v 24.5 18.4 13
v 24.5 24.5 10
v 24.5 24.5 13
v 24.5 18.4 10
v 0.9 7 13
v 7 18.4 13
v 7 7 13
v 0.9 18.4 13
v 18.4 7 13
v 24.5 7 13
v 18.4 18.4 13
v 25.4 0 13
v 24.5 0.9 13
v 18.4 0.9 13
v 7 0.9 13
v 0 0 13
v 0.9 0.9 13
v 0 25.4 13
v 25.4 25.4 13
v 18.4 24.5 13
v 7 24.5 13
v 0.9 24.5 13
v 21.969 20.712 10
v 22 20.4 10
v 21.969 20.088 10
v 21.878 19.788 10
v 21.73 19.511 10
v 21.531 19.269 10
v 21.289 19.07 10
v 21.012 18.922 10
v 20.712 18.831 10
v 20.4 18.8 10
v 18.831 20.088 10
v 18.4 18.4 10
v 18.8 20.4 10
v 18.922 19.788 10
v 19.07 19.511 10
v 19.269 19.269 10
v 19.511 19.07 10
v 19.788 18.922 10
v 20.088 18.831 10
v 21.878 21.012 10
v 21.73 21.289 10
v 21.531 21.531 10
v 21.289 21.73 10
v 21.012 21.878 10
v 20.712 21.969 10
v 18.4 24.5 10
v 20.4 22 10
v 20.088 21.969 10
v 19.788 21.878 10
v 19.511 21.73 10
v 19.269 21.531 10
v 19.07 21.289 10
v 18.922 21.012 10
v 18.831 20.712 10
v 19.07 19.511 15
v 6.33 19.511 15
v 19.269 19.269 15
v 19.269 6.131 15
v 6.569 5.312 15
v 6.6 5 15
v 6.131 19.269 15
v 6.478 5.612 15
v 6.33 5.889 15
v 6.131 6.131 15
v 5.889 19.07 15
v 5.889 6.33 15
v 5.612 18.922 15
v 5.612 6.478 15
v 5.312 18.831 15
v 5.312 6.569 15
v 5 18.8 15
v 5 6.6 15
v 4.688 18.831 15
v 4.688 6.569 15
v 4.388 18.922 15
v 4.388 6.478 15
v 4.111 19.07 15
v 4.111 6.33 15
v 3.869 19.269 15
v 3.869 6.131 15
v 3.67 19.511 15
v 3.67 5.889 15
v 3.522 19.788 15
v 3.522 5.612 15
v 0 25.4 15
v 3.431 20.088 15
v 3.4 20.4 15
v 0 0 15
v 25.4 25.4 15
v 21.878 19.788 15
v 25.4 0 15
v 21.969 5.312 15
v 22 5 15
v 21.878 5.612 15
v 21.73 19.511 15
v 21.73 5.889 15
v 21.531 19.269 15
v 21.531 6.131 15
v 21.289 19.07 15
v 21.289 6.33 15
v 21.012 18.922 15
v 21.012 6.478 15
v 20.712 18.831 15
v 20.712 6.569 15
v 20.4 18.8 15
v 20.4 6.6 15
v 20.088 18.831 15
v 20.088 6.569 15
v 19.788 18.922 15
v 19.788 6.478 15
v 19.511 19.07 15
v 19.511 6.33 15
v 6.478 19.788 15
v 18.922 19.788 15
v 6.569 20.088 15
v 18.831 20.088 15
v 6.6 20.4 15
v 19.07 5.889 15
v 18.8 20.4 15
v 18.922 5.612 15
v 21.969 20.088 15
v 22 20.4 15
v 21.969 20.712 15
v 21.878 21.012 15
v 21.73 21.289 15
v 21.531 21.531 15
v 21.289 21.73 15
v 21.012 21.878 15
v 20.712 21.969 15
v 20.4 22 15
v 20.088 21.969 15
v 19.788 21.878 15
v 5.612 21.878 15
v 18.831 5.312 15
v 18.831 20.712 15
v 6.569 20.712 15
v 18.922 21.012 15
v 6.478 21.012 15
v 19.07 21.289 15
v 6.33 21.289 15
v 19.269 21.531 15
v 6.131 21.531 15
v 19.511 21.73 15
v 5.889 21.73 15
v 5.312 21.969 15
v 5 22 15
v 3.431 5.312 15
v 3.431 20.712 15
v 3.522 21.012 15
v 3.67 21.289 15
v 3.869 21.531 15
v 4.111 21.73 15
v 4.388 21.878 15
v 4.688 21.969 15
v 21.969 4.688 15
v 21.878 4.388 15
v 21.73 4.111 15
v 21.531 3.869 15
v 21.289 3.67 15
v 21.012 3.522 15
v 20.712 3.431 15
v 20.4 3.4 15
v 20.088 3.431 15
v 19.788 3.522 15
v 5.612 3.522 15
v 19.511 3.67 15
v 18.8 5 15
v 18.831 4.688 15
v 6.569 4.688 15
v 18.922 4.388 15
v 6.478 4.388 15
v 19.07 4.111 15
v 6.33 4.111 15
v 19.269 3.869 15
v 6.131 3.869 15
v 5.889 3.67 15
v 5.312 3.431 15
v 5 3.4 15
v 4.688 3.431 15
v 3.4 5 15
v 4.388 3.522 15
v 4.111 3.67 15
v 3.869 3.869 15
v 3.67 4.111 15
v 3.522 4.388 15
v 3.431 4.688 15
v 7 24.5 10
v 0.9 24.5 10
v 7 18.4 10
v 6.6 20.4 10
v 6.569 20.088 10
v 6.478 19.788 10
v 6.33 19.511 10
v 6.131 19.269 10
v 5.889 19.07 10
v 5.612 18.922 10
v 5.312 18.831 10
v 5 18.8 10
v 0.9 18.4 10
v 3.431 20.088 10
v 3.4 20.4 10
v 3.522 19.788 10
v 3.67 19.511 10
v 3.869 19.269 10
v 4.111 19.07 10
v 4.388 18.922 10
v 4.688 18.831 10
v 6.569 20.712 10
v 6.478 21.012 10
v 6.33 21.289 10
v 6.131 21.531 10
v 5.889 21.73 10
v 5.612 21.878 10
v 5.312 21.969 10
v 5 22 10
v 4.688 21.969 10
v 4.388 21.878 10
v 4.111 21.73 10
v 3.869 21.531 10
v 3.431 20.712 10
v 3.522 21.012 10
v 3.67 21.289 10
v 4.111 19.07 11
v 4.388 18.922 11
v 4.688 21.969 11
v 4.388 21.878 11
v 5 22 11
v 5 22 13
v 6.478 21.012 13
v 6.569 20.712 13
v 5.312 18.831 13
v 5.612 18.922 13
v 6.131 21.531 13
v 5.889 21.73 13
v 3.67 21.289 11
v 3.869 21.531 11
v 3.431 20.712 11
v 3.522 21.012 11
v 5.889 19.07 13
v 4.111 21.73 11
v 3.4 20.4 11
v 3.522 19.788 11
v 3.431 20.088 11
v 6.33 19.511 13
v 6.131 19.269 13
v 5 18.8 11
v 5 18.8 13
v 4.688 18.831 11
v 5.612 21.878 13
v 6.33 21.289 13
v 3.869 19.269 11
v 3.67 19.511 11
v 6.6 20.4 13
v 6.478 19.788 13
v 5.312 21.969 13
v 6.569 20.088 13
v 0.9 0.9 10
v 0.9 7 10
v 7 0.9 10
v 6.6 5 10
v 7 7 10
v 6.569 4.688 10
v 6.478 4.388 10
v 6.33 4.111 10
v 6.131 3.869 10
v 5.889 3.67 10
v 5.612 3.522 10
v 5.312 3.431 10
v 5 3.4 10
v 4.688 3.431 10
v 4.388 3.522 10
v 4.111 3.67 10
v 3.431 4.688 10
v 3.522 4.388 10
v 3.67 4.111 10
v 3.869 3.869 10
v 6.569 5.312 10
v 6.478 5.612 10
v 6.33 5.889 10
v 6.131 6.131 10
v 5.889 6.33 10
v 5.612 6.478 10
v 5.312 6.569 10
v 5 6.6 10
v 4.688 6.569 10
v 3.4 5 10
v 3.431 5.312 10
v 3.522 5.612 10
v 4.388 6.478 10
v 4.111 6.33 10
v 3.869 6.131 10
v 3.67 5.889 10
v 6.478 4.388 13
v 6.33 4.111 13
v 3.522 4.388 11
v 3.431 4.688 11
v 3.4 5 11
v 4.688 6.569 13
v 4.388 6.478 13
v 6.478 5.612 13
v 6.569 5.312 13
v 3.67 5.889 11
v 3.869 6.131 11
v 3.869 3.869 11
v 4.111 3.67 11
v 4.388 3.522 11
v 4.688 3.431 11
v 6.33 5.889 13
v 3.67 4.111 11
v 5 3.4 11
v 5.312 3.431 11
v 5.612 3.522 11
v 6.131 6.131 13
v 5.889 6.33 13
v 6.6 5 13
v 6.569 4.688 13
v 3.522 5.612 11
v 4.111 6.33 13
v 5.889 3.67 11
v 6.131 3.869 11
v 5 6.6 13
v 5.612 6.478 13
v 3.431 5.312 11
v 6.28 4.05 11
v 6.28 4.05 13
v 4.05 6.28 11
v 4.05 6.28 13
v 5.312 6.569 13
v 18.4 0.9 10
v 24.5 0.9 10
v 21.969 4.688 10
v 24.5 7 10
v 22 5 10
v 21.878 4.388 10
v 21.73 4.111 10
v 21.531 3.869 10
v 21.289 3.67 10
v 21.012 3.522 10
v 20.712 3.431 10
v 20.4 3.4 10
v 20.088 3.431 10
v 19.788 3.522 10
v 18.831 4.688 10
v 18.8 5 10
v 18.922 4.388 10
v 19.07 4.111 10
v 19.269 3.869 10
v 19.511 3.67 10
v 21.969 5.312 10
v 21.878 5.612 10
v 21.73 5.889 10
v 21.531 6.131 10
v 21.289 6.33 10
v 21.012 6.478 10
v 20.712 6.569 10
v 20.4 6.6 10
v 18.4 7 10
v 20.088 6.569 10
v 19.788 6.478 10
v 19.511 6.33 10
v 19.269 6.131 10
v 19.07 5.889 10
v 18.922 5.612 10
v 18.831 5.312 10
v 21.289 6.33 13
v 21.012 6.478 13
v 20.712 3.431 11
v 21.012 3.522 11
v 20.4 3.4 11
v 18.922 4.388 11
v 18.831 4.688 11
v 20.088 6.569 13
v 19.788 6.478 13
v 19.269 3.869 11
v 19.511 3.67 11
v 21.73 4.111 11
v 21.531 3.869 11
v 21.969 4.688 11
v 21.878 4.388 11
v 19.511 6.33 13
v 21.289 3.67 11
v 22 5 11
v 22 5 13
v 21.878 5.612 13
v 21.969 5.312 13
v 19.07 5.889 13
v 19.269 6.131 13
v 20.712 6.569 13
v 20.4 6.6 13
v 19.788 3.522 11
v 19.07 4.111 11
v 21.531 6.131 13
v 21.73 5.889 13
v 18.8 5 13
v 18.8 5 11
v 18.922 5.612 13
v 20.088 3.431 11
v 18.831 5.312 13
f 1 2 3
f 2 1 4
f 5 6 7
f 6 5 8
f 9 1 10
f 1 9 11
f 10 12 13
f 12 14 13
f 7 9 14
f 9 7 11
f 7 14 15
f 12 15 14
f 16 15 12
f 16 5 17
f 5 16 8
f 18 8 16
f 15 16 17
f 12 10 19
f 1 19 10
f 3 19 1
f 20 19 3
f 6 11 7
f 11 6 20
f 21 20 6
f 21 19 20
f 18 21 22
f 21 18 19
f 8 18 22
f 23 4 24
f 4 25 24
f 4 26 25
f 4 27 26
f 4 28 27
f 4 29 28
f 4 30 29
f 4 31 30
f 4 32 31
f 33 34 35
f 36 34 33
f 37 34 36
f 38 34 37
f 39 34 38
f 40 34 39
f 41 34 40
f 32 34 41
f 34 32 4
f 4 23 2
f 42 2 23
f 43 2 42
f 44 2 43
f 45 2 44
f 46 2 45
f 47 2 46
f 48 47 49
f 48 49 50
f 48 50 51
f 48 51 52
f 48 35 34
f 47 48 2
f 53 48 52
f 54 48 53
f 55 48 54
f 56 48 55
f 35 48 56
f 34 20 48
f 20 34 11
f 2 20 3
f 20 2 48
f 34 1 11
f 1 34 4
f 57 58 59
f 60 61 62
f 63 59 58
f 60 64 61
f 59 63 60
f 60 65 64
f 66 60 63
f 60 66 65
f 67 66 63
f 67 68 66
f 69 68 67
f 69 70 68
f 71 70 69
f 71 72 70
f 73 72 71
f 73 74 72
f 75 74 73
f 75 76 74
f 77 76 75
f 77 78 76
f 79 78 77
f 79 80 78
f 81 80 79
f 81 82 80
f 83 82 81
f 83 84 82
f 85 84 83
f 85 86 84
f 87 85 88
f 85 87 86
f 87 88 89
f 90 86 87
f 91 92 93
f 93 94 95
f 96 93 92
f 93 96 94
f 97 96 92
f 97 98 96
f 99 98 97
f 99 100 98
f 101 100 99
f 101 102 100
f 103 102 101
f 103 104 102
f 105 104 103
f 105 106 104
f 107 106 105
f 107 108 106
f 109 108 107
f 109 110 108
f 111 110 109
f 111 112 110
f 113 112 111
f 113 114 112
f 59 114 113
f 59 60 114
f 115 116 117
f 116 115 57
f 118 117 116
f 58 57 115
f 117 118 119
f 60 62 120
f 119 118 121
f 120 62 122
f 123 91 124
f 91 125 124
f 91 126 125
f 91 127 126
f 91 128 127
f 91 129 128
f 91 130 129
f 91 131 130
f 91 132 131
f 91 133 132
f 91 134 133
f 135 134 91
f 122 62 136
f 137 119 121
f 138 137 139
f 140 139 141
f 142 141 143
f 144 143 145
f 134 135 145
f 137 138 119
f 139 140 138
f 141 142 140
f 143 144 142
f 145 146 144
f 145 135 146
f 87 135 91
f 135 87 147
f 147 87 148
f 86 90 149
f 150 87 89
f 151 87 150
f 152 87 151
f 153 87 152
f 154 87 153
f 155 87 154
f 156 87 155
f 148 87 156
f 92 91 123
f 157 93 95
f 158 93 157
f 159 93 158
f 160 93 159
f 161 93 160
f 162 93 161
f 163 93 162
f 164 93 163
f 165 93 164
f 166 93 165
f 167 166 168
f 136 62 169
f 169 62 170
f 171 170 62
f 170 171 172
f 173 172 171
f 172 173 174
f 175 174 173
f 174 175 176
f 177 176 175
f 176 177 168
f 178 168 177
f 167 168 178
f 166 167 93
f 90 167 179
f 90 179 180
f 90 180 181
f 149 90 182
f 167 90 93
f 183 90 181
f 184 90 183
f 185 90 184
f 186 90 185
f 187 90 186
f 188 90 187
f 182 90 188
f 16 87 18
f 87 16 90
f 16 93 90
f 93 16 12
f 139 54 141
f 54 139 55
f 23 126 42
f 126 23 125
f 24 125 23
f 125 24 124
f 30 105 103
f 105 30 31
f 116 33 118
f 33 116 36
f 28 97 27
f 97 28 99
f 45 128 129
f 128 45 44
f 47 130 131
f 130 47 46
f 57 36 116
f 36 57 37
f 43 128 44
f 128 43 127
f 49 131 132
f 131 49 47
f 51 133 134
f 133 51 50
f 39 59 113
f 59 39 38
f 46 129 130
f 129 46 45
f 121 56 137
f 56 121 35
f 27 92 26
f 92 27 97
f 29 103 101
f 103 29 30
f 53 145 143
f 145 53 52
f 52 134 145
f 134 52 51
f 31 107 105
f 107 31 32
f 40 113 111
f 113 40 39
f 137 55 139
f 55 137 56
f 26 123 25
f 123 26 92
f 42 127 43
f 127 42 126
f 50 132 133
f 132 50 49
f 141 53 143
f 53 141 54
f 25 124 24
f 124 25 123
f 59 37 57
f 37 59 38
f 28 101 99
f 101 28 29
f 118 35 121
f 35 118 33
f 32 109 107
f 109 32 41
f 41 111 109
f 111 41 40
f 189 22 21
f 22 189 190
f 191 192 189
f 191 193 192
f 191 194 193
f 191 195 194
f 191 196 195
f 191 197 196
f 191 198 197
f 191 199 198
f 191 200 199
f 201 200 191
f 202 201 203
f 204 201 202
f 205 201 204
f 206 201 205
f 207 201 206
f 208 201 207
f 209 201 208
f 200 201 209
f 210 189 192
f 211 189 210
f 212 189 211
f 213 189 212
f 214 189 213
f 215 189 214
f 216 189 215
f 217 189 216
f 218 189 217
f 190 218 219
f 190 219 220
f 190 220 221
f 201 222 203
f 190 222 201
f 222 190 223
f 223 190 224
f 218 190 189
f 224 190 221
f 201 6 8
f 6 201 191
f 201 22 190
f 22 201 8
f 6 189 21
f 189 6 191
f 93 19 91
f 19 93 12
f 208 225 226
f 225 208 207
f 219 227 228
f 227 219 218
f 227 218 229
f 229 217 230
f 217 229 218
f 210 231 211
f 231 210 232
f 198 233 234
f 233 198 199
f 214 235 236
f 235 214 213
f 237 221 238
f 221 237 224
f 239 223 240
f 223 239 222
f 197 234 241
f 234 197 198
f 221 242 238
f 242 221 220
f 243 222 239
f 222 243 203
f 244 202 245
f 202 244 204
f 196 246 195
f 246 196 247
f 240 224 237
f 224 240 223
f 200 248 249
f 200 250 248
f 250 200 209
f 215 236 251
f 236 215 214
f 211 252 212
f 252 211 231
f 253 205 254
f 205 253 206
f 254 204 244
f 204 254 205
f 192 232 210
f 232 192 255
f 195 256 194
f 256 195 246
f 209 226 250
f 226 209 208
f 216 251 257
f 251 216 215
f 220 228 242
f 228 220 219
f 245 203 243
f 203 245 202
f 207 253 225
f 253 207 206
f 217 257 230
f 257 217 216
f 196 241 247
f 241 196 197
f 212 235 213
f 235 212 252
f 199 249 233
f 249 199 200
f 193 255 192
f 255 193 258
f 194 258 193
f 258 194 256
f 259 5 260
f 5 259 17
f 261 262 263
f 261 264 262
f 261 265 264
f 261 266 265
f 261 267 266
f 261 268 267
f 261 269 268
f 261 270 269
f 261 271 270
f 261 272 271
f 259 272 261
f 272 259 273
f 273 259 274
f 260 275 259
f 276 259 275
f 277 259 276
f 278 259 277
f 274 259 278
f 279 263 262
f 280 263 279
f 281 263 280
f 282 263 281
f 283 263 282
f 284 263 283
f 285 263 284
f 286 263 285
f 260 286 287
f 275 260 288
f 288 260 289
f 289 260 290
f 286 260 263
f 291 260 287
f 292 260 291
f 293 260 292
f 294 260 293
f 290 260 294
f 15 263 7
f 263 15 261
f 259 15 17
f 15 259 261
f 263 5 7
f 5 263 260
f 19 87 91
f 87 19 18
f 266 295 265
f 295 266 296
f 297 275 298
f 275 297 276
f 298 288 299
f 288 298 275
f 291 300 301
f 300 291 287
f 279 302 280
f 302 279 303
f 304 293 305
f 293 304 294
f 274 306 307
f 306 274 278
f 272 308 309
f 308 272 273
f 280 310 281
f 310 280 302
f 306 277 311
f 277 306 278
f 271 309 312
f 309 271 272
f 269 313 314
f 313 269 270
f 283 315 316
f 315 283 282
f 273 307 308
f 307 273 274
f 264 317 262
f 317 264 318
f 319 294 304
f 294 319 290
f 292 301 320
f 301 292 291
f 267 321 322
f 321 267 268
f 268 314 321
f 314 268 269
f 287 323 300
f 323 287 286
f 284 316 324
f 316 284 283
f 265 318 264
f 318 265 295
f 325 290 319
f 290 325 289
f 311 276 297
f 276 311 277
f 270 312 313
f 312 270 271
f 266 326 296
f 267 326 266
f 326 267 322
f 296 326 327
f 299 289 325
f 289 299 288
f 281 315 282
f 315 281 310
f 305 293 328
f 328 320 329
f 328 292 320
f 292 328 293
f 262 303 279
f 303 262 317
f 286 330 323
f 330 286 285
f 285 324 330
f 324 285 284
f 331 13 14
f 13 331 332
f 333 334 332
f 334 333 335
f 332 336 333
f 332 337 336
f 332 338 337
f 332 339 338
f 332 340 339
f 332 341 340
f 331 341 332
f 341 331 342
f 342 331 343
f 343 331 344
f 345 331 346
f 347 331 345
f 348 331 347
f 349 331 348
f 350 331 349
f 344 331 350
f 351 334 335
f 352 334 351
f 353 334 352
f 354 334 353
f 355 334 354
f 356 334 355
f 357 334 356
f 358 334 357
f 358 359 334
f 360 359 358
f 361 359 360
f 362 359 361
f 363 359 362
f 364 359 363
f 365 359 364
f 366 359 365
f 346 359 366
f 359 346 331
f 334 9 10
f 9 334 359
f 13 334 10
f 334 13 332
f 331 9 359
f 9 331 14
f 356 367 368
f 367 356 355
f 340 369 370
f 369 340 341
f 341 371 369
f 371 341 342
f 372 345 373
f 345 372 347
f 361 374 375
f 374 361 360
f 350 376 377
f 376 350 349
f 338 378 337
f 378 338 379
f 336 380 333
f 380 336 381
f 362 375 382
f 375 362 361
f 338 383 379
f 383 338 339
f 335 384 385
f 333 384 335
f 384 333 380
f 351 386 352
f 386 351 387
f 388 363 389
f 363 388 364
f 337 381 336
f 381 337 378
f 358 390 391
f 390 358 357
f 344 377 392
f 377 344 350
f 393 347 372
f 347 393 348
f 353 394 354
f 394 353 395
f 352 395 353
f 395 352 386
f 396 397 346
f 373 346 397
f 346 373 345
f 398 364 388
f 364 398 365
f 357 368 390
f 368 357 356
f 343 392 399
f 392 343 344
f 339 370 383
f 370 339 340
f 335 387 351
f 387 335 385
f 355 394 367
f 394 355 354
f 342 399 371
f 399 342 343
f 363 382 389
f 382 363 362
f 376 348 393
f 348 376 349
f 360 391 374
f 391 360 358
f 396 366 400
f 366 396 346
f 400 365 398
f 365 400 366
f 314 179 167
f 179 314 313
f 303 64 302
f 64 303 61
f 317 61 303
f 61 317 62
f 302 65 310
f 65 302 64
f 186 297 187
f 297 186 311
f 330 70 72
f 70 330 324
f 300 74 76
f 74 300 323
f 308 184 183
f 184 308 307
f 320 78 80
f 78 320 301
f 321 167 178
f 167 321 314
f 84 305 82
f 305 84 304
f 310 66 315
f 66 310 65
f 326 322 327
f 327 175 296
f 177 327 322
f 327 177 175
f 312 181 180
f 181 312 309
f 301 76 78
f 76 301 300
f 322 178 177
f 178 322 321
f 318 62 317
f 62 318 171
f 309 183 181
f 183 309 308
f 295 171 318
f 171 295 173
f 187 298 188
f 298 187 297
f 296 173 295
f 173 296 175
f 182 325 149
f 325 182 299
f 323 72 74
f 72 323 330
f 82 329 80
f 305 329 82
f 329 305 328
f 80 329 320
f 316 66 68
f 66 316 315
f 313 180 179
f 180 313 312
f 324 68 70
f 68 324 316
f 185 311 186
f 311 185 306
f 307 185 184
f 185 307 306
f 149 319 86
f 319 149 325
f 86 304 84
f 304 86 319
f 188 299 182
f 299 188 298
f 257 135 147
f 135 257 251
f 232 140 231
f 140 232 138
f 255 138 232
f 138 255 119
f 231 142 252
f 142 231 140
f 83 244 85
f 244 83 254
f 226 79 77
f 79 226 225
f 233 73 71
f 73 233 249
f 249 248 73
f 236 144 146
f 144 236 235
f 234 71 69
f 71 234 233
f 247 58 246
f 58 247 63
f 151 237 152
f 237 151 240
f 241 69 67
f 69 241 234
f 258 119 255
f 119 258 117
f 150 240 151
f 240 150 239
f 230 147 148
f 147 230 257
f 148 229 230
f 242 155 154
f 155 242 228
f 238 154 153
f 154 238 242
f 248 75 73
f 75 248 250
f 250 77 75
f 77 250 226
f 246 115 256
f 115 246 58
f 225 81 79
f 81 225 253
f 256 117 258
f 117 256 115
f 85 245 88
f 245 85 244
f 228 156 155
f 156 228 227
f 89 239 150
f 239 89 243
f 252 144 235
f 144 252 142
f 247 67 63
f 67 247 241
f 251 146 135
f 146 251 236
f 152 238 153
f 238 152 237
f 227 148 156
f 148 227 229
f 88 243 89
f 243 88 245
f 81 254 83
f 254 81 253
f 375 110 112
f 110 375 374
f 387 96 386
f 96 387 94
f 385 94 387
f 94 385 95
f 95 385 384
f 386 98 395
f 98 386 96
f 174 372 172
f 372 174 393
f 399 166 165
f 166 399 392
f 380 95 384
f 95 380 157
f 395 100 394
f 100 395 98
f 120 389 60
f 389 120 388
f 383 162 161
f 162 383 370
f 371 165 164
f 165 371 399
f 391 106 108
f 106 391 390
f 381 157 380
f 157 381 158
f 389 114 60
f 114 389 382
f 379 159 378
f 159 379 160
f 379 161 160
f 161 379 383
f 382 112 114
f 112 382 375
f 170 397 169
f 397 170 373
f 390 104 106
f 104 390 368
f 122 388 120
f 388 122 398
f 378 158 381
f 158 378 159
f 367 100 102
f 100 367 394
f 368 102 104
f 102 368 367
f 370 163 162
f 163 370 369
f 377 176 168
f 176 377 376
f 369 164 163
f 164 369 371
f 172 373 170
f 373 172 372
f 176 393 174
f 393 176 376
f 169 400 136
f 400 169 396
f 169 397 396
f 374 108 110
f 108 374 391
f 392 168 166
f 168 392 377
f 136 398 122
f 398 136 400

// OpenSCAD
base = 4;
wall_height = 0.9;







module corner_base(){
    cube([25.4,25.4,base],center = false);
    rotate([0,0,270]){
        translate([0,0,0]){
            mirror([1,0,0]){
                difference(){
        union(){
            
            translate([0,25.4-wall_height,base])
                cube([25.4,0.9,9]);
            
            
            difference(){
                translate([17.4,17.4,base])
                    cube([7.1,7.1,4],center = false);
                translate([20.4,20.4,base+2.5])
                    cylinder(h = 5, r = 1.6,center = true,$fn = 32  );
            }
        }
        translate([25.4/2 - 11/2,25.4-2,base+4])
            cube([11,5,10]);
        translate([3.6,24.9,base+2]){
            rotate([90,0,0])
            cylinder(h=3,r=1.6,center = true,$fn = 32);
    }
        translate([21.8,24.9,base+2]){
            rotate([90,0,0])
                cylinder(h=3,r=1.6,center = true,$fn = 32);
    }
    }   
                
            }
            
    }      
        
    }

    difference(){
        union(){
            
            translate([0,25.4-wall_height,base])
                cube([25.4,0.9,9]);
            
            
            difference(){
                translate([17.4,17.4,base])
                    cube([7.1,7.1,4],center = false);
                translate([20.4,20.4,base+2.5])
                    cylinder(h = 5, r = 1.6,center = true,$fn = 32  );
            }
        }
        translate([25.4/2 - 11/2,25.4-2,base+4])
            cube([11,5,10]);
        translate([3.6,24.9,base+2]){
            rotate([90,0,0])
            cylinder(h=3,r=1.6,center = true,$fn = 32);
    }
        translate([21.8,24.9,base+2]){
            rotate([90,0,0])
                cylinder(h=3,r=1.6,center = true,$fn = 32);
    }
    }   
}
















module edge_base(){
    translate([0,0,0]){

        cube([25.4,25.4,base],center = false);
        

        difference(){
            union(){
                
                translate([0,25.4-wall_height,base])
                    cube([25.4,0.9,9]);
                translate([0,17.4,base])
                        cube([7.1,7.1,4],center = false);
                
                difference(){
                    translate([17.4,17.4,base])
                        cube([7.1,7.1,4],center = false);
                    
                }
            }
            translate([25.4/2 - 11/2,25.4-2,base+4])
                cube([11,5,10]);
            translate([3.6,24.9,base+2]){
                rotate([90,0,0])
                cylinder(h=3,r=1.6,center = true,$fn = 32);
        }
            translate([21.8,24.9,base+2]){
                rotate([90,0,0])
                    cylinder(h=3,r=1.6,center = true,$fn = 32);
        }
        }
    }

}








module corner_top(){
    difference(){
        union(){
            translate([18.4,18.4,10]){
                cube([6.1,6.1,3]);
            }
            translate([0,0,9+base]){
                cube([25.4,25.4,2]);
            }
        }
        
        
        translate([20.4,20.4,12.5])
            cylinder(h = 15, r = 1.6,center = true,$fn = 32  );

    }
}
difference(){
    union(){
        corner_top();
        translate([25.4,0,0])
            rotate([0,0,90])
                corner_top();
                
                

        translate([25.4,25.4])
            rotate([0,0,180])
                corner_top();
        translate([0,25.4])
            rotate([0,0,270])
                corner_top();
    }
    translate([0,0,7]){
        translate([20.4,20.4,base+2.5])
                    cylinder(h = 5, r = 1.6,center = true,$fn = 32  );
        translate([5,5,base+2.5])
                    cylinder(h = 5, r = 1.6,center = true,$fn = 32  );
        translate([5,20.4,base+2.5])
                    cylinder(h = 5, r = 1.6,center = true,$fn = 32  );
        translate([20.4,5,base+2.5])
                    cylinder(h = 5, r = 1.6,center = true,$fn = 32  );
    }
}
